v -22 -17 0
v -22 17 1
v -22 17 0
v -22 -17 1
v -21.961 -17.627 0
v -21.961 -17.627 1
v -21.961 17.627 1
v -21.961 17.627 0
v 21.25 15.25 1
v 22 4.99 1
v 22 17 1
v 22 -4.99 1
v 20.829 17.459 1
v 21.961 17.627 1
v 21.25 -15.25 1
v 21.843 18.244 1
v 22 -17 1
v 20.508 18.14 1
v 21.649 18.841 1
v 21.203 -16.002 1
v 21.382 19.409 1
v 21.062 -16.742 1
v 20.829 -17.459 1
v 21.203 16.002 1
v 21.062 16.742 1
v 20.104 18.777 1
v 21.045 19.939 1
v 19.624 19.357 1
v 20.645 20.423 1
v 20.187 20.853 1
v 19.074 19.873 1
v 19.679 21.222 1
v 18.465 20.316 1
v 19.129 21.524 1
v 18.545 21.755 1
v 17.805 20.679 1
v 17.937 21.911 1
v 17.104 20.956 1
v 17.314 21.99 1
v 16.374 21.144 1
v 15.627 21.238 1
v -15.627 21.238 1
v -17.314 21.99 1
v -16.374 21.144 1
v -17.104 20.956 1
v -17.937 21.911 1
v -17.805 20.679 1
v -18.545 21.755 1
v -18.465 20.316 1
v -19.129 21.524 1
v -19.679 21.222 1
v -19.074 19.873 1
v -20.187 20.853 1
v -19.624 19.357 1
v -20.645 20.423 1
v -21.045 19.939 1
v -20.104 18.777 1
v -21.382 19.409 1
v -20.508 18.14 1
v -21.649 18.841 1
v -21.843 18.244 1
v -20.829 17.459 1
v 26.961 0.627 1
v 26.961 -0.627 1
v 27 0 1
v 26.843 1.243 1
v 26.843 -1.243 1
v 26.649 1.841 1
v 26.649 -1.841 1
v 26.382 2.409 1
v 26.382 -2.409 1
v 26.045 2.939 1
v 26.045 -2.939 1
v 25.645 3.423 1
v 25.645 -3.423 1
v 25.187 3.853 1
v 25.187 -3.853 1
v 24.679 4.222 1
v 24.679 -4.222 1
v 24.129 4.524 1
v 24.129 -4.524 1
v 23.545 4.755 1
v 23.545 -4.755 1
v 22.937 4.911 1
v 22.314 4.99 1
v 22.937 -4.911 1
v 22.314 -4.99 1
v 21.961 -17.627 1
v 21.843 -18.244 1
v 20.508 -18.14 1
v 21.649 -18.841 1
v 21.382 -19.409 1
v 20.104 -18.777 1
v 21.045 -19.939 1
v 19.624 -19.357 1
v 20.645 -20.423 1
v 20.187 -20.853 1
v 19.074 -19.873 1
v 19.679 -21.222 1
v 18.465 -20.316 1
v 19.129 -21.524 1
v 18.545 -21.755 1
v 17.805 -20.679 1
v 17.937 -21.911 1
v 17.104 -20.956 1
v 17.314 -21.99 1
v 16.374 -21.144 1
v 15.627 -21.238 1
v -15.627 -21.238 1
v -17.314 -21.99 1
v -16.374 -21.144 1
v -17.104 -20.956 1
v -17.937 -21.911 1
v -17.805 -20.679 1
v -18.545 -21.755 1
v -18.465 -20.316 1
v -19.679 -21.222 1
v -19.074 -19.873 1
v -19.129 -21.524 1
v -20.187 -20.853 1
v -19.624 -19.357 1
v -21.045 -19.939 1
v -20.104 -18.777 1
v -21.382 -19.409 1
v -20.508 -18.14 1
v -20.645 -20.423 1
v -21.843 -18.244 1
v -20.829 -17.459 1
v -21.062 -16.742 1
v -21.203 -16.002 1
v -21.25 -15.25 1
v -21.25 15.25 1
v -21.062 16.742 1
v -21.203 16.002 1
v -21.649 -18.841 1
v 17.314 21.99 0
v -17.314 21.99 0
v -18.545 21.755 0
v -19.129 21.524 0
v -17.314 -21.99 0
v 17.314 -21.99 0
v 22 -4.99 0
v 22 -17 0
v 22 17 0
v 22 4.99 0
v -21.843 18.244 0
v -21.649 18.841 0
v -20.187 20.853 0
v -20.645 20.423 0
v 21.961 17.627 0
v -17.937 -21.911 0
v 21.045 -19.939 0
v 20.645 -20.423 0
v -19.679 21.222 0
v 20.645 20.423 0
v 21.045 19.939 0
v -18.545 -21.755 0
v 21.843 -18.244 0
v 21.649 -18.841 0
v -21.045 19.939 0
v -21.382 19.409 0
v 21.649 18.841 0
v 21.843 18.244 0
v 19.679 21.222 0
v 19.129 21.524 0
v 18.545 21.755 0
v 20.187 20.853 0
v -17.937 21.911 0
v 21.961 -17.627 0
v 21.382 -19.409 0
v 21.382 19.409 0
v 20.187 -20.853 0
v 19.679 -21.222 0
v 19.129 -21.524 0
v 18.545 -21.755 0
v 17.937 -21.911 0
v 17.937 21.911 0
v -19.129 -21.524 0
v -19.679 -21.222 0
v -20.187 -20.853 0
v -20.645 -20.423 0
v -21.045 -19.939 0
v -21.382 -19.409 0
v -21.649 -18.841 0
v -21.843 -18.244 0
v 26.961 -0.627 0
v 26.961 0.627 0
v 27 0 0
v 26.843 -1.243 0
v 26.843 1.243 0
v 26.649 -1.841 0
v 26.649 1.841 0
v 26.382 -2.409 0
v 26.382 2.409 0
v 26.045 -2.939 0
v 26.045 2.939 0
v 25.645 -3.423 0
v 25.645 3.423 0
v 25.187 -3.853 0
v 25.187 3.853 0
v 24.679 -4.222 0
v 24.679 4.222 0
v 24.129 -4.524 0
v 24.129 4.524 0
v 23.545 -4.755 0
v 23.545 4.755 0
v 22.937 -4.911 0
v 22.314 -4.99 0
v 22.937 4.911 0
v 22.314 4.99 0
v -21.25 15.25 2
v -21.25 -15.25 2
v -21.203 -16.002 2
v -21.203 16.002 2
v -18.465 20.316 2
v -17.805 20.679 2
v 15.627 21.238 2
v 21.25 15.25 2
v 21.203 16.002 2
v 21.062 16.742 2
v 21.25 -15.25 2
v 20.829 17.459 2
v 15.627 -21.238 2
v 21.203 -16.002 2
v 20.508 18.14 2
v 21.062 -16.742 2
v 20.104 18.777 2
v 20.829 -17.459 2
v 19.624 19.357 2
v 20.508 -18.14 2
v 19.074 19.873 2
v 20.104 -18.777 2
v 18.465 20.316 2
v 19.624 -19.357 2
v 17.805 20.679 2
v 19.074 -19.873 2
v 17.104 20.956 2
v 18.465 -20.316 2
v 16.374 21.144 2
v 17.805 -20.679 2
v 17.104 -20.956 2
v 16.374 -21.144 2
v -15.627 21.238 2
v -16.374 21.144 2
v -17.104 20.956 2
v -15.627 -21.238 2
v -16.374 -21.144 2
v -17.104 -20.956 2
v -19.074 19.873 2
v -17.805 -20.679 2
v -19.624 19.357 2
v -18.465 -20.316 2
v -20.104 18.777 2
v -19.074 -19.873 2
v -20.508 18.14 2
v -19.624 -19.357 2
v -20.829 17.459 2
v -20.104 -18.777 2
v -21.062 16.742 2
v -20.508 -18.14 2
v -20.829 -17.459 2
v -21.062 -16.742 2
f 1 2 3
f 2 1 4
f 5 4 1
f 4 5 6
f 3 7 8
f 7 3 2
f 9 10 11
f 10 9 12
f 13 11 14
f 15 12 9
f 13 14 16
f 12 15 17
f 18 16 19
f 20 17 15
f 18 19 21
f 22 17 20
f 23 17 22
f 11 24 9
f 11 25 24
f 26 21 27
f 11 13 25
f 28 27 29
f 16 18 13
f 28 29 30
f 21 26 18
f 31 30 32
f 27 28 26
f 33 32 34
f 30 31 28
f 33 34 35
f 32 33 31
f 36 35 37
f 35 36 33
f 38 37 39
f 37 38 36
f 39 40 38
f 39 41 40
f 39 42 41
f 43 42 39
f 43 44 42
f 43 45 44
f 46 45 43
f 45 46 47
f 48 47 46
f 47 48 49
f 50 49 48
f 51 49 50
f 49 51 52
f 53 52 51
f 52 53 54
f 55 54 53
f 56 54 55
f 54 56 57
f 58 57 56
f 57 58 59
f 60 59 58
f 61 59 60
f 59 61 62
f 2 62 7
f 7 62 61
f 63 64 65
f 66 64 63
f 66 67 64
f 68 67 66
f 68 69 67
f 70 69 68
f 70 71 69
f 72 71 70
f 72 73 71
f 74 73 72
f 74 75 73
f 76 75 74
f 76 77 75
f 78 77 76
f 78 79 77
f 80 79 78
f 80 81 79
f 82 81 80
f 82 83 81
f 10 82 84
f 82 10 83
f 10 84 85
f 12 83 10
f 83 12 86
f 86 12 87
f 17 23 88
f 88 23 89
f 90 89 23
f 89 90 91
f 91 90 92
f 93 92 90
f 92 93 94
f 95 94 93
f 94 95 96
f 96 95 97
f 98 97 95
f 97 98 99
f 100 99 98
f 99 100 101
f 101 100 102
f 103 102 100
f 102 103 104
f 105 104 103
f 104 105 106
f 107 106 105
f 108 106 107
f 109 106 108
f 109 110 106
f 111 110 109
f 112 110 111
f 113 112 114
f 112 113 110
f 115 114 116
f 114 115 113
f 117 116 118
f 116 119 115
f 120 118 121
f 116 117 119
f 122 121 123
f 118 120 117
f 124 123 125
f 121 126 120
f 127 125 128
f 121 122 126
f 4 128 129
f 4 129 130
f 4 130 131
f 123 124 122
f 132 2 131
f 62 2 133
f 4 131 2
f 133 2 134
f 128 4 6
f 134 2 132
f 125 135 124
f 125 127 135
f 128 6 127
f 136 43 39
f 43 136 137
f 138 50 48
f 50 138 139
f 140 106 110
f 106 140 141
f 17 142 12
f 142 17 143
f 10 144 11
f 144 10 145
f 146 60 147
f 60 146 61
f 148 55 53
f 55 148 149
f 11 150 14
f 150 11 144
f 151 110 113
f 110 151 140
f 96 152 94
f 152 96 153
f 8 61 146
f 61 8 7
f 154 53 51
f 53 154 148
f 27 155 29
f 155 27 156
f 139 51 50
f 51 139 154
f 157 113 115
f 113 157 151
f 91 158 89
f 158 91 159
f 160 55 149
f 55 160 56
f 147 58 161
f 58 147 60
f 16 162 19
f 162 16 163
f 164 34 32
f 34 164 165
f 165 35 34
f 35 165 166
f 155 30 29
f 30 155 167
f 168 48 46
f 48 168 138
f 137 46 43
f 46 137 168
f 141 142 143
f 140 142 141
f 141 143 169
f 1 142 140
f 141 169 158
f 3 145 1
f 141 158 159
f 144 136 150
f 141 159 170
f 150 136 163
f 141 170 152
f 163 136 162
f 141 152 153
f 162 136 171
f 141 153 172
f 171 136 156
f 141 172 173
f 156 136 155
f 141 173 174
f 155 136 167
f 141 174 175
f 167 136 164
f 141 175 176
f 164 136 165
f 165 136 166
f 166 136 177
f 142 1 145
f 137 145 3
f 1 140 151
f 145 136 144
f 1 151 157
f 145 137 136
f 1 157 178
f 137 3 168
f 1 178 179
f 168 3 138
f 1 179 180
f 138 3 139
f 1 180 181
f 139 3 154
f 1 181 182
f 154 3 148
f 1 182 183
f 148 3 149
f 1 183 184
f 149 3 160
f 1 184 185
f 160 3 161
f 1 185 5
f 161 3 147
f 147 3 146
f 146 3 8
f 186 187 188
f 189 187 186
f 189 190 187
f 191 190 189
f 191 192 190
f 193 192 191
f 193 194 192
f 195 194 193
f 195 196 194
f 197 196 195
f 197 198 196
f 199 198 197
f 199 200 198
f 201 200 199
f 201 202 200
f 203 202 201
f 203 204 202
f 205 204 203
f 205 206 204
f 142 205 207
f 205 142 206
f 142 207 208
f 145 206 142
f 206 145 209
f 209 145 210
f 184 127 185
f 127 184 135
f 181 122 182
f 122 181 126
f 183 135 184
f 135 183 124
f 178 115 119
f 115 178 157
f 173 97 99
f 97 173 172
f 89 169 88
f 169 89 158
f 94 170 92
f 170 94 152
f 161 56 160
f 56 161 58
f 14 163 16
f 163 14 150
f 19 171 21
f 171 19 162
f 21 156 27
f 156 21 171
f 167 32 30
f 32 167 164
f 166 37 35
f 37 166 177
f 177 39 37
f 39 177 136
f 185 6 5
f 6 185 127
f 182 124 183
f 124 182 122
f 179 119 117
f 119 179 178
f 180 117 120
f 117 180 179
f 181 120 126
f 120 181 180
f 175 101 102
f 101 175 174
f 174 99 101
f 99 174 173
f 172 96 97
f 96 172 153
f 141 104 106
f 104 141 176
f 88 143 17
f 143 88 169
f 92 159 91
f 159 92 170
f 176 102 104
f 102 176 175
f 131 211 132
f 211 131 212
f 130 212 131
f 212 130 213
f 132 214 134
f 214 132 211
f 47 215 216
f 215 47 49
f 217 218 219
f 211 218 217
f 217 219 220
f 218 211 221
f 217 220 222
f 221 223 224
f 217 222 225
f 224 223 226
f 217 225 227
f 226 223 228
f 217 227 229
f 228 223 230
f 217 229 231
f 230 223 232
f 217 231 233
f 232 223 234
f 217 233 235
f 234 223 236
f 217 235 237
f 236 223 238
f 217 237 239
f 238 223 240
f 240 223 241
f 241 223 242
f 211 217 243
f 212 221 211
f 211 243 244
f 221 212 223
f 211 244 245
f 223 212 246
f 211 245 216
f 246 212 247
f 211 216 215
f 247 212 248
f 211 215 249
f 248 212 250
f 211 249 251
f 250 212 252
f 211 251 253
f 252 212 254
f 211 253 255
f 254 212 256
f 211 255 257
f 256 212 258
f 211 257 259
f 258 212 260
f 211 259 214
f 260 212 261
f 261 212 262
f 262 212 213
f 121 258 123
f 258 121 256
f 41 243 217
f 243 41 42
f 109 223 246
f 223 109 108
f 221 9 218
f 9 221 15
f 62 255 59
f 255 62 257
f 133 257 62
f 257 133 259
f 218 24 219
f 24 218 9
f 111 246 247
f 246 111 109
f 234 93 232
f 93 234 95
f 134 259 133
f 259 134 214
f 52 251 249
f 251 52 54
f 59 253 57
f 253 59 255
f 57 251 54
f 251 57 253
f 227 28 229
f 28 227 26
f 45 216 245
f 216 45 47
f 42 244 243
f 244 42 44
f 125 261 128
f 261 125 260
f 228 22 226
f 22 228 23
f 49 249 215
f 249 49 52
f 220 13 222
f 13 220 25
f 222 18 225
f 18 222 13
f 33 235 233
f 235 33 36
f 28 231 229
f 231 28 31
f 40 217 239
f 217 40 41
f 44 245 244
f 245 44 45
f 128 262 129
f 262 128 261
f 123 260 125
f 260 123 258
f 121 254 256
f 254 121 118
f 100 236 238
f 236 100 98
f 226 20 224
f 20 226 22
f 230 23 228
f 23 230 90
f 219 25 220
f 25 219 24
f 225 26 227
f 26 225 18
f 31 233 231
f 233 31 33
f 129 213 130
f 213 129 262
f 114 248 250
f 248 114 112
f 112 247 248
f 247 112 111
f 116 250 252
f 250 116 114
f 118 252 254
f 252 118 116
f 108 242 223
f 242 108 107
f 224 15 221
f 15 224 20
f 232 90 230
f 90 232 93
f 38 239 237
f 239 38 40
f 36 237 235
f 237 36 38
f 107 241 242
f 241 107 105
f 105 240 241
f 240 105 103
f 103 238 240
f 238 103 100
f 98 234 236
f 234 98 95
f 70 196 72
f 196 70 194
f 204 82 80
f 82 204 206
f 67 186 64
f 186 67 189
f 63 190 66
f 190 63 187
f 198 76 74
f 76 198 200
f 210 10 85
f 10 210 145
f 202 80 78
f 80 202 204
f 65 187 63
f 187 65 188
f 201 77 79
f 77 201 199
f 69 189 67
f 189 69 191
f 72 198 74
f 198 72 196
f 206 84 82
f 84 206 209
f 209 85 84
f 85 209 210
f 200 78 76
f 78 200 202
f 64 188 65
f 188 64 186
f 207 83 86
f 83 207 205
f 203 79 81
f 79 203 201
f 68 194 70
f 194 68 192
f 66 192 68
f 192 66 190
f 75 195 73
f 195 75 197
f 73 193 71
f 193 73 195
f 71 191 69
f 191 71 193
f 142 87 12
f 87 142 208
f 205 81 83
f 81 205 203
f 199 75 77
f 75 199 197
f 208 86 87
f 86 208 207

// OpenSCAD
$fn = 50;


difference() {
	union() {
		translate(v = [0, 0, 0]) {
			rotate(a = [0, 0, 0]) {
				hull() {
					translate(v = [-17.0000000000, 17.0000000000, 0]) {
						rotate(a = [0, 0, 0]) {
							translate(v = [0, 0, 0]) {
								rotate(a = [0, 0, 0]) {
									cylinder(h = 1, r = 5);
								}
							}
						}
					}
					translate(v = [17.0000000000, 17.0000000000, 0]) {
						rotate(a = [0, 0, 0]) {
							translate(v = [0, 0, 0]) {
								rotate(a = [0, 0, 0]) {
									cylinder(h = 1, r = 5);
								}
							}
						}
					}
					translate(v = [-17.0000000000, -17.0000000000, 0]) {
						rotate(a = [0, 0, 0]) {
							translate(v = [0, 0, 0]) {
								rotate(a = [0, 0, 0]) {
									cylinder(h = 1, r = 5);
								}
							}
						}
					}
					translate(v = [17.0000000000, -17.0000000000, 0]) {
						rotate(a = [0, 0, 0]) {
							translate(v = [0, 0, 0]) {
								rotate(a = [0, 0, 0]) {
									cylinder(h = 1, r = 5);
								}
							}
						}
					}
				}
			}
		}
		translate(v = [0, 0, 0]) {
			rotate(a = [0, 0, 0]) {
				hull() {
					translate(v = [-15.2500000000, 15.2500000000, 0]) {
						rotate(a = [0, 0, 0]) {
							translate(v = [0, 0, 0]) {
								rotate(a = [0, 0, 0]) {
									cylinder(h = 2, r = 6);
								}
							}
						}
					}
					translate(v = [15.2500000000, 15.2500000000, 0]) {
						rotate(a = [0, 0, 0]) {
							translate(v = [0, 0, 0]) {
								rotate(a = [0, 0, 0]) {
									cylinder(h = 2, r = 6);
								}
							}
						}
					}
					translate(v = [-15.2500000000, -15.2500000000, 0]) {
						rotate(a = [0, 0, 0]) {
							translate(v = [0, 0, 0]) {
								rotate(a = [0, 0, 0]) {
									cylinder(h = 2, r = 6);
								}
							}
						}
					}
					translate(v = [15.2500000000, -15.2500000000, 0]) {
						rotate(a = [0, 0, 0]) {
							translate(v = [0, 0, 0]) {
								rotate(a = [0, 0, 0]) {
									cylinder(h = 2, r = 6);
								}
							}
						}
					}
				}
			}
		}
		translate(v = [22.0000000000, 0, 0.0000000000]) {
			rotate(a = [0, 0, 0]) {
				cylinder(h = 1, r = 5);
			}
		}
	}
	union();
}
